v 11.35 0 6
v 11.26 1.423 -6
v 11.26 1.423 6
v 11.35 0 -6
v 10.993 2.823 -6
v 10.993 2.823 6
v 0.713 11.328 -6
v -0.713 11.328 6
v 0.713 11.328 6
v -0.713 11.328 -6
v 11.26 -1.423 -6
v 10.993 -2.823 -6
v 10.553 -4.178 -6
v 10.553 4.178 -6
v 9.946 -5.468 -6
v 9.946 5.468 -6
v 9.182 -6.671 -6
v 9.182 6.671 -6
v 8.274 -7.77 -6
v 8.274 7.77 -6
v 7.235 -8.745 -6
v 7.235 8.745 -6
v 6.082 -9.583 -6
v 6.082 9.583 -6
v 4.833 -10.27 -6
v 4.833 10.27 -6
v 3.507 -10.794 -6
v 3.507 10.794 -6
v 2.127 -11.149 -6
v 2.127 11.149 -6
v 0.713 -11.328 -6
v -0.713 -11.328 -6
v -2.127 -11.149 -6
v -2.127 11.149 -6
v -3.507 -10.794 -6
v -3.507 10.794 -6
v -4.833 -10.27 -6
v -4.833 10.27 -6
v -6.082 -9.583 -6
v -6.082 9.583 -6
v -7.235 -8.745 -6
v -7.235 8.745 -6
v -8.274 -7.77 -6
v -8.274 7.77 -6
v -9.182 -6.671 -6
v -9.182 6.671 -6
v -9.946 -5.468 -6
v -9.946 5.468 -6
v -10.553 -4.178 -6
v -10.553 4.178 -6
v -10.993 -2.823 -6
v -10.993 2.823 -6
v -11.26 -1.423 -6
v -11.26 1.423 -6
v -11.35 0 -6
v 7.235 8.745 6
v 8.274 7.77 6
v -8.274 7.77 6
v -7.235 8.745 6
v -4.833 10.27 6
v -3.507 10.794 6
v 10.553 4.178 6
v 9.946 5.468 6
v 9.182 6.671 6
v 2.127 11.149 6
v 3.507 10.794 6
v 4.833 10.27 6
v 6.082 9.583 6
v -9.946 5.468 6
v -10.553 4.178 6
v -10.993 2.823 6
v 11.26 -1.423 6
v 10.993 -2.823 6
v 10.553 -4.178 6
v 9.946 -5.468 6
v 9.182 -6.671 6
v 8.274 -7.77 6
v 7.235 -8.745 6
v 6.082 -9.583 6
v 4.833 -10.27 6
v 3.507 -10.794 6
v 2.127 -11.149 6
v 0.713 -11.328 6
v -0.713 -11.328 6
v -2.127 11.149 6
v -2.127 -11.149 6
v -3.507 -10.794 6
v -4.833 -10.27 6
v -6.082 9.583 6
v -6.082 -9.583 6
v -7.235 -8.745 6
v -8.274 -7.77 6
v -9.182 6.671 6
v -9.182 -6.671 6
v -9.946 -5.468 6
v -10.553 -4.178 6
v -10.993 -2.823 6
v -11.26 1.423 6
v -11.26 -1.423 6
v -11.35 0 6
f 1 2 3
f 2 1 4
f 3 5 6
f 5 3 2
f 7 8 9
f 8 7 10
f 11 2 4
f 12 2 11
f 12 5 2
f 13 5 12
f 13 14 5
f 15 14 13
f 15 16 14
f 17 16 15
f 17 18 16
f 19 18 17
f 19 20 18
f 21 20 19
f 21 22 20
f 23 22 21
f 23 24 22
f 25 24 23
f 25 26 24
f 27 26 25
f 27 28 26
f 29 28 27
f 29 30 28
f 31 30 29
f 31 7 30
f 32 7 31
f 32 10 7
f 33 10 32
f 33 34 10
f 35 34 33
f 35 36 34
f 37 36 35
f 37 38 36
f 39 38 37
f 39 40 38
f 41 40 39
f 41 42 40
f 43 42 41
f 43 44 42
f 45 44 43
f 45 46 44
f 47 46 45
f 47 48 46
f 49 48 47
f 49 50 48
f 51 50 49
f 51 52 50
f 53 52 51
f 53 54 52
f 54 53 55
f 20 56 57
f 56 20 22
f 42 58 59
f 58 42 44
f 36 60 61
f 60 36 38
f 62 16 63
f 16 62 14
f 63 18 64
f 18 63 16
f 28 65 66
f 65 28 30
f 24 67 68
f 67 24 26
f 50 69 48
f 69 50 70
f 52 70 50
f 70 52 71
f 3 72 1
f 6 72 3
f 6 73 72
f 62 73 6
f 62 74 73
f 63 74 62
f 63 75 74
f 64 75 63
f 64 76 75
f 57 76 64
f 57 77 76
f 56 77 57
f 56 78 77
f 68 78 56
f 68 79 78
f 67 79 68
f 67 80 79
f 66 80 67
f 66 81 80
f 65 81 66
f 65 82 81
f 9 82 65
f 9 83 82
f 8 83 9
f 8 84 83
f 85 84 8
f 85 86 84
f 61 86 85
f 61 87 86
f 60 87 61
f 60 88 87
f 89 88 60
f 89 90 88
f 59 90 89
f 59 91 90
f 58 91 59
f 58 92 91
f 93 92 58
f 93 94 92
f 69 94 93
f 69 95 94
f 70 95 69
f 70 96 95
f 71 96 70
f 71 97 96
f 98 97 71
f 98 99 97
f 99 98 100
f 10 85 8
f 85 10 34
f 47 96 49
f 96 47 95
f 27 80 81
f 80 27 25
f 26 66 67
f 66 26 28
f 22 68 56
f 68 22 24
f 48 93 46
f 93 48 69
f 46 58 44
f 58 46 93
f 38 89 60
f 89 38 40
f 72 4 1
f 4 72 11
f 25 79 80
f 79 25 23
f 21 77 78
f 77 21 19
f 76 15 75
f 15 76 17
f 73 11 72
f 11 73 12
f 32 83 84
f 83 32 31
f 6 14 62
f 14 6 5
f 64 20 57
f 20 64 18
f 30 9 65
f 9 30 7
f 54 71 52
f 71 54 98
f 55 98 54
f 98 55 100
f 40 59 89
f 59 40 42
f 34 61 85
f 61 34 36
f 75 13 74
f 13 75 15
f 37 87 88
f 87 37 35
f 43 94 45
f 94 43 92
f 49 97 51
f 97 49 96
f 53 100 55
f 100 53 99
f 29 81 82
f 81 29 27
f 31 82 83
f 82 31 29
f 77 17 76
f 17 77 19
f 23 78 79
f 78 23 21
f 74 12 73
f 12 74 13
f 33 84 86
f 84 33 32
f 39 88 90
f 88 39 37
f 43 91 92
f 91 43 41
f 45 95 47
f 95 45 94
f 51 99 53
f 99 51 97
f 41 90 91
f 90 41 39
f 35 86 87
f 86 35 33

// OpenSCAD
$fn = 50;


difference() {
	union() {
		translate(v = [0, 0, -6.0000000000]) {
			cylinder(h = 12, r = 11.3500000000);
		}
	}
	union() {
		translate(v = [0, 0, -100.0000000000]) {
			cylinder(h = 200, r = 0);
		}
	}
}
